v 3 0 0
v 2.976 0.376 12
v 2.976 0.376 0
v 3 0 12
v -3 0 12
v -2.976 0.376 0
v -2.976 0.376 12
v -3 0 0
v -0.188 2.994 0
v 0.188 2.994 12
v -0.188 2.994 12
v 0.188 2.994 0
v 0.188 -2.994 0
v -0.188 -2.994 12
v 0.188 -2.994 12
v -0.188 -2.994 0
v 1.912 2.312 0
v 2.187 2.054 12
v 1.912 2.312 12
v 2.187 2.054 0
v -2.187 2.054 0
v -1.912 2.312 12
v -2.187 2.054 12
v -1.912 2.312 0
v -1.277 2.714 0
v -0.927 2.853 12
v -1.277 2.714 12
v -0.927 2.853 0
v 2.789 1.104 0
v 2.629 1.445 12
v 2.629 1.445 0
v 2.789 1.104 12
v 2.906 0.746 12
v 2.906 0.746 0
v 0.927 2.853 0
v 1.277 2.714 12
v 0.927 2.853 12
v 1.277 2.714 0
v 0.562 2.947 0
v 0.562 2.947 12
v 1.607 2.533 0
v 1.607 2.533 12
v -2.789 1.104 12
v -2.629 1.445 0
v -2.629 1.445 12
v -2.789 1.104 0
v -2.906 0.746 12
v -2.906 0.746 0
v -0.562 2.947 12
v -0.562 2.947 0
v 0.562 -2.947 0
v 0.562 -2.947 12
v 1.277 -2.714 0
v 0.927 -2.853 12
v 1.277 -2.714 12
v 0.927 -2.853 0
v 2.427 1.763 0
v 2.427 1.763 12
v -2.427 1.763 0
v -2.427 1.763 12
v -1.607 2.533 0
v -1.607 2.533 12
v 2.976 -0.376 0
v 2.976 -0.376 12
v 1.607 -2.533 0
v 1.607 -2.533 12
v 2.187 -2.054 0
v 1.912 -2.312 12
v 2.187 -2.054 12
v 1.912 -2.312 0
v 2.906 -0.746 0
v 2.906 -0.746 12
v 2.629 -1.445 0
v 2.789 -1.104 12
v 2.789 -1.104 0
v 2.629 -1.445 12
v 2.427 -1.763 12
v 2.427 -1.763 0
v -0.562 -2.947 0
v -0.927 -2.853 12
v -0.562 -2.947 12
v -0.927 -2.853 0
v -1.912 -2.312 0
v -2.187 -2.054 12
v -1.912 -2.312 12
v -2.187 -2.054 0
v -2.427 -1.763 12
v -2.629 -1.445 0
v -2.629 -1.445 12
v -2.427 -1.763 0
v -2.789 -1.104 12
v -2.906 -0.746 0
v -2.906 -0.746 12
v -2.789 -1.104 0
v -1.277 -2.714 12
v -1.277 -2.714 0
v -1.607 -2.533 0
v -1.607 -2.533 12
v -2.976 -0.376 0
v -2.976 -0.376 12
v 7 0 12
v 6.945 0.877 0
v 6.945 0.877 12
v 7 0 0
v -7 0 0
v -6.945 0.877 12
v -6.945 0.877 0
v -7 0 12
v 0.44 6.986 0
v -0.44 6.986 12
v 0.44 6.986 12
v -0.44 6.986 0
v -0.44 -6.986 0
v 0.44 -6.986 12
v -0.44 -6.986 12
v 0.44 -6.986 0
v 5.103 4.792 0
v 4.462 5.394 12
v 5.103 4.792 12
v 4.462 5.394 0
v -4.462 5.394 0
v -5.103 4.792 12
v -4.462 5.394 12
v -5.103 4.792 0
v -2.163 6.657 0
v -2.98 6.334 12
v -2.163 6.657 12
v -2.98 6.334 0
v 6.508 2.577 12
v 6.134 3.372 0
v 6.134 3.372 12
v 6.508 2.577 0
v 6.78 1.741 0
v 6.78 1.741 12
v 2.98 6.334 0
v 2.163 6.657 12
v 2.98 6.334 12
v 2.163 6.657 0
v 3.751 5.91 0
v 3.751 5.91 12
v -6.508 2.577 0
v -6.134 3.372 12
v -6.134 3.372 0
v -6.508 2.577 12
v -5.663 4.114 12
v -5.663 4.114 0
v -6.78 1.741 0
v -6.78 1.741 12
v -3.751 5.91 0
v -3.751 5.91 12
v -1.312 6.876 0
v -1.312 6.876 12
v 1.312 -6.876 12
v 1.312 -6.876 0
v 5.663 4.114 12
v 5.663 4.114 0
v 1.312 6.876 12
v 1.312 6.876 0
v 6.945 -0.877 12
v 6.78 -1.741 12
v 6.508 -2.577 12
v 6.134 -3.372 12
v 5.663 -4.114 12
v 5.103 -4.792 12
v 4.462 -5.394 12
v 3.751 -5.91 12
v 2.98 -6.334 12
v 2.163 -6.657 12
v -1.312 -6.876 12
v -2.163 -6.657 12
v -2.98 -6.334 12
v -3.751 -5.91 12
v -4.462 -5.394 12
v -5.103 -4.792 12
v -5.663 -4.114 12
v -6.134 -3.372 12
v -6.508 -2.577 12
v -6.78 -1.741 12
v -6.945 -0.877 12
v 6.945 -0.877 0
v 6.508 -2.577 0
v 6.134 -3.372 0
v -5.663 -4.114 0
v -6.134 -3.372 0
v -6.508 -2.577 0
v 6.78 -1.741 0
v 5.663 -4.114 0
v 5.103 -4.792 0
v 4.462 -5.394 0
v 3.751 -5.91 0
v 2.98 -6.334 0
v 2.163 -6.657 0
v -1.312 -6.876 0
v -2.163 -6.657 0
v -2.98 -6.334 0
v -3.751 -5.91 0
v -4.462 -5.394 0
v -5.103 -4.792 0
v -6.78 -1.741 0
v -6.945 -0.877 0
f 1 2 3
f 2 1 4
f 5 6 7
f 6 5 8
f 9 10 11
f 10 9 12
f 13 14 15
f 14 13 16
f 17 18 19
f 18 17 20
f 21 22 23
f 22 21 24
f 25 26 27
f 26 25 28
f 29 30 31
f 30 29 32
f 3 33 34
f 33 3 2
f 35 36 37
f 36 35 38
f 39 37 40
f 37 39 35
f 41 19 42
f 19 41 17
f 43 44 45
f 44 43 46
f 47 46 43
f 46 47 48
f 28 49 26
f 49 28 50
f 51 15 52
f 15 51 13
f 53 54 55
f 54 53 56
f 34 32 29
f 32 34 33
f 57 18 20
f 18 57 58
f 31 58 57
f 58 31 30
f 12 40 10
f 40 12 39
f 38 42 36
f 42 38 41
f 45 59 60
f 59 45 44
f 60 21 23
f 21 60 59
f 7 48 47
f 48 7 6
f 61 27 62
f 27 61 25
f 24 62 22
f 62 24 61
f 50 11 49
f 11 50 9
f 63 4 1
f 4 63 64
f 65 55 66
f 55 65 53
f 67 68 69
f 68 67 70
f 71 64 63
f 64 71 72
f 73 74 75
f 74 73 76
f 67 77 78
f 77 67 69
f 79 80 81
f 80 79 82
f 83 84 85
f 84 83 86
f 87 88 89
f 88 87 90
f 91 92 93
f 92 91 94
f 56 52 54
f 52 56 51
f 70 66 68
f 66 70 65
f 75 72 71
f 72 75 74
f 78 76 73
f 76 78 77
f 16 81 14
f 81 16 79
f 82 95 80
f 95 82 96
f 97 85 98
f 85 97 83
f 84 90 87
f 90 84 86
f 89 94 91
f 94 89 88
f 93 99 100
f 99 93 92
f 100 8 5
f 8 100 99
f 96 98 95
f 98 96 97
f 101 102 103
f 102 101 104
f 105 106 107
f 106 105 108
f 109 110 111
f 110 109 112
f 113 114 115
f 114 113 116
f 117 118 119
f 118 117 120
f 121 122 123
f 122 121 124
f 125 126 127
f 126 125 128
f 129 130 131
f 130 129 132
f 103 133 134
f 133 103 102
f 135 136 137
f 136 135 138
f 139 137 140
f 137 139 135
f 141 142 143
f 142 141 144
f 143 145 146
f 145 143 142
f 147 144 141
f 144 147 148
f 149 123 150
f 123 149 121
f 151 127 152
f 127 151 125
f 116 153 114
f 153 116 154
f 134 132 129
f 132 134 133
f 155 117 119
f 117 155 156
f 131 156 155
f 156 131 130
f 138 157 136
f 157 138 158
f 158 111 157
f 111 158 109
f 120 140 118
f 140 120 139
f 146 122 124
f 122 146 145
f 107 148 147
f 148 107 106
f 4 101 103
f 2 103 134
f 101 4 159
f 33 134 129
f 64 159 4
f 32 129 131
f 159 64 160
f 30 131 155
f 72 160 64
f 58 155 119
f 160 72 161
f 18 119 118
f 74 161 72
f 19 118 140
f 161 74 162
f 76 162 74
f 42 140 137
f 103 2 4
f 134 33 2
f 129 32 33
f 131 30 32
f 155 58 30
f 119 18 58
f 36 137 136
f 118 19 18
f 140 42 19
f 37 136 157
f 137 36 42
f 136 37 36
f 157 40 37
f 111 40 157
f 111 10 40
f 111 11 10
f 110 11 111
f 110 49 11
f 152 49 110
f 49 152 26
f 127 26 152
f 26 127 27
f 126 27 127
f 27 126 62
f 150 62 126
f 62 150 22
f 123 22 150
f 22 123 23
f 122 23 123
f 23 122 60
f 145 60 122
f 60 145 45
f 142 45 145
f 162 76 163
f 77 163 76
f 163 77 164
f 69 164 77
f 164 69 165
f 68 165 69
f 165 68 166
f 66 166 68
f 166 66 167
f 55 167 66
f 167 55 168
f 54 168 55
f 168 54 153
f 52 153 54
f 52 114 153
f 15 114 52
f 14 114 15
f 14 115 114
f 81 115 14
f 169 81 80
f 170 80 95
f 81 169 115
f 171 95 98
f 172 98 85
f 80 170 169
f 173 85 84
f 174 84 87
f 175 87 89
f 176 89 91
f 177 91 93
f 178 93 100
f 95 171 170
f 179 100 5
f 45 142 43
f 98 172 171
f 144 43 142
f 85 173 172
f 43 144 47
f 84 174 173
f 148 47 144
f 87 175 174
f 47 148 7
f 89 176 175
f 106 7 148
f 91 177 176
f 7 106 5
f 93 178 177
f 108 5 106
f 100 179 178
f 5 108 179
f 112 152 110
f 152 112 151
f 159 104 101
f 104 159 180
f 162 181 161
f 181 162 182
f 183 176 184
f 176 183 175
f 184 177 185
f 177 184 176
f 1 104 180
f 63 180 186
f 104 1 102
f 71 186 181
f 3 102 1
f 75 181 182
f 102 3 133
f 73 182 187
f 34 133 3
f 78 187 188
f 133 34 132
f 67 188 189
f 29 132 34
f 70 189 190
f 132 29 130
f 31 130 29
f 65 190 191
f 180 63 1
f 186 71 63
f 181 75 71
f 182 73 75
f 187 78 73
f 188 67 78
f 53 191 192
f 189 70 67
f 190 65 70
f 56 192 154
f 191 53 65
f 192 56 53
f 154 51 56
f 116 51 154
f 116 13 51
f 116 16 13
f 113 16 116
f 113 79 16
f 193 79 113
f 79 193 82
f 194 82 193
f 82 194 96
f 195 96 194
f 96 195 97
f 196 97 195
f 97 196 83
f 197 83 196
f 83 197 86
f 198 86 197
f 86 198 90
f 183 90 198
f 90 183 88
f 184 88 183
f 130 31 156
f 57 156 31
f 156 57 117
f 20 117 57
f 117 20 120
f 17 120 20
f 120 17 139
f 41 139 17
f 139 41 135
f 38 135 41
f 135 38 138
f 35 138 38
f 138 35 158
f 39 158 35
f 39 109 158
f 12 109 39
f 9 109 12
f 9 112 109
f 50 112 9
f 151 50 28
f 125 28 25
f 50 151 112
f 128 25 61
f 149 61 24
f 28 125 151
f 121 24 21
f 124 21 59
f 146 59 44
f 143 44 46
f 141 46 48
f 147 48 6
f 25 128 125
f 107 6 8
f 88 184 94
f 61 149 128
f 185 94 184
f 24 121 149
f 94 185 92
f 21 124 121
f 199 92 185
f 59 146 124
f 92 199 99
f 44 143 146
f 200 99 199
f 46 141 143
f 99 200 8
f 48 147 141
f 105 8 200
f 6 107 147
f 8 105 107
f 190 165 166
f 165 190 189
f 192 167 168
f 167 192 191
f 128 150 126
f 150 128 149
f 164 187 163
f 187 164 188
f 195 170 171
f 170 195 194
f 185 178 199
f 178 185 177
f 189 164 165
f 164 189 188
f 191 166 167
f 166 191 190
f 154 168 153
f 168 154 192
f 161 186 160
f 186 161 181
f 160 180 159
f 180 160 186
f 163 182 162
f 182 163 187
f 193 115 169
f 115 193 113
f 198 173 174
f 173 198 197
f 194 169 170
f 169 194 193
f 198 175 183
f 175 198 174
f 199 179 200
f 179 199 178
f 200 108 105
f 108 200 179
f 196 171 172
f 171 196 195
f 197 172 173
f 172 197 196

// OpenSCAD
$fn = 50;


difference() {
	union() {
		translate(v = [0, 0, 0]) {
			rotate(a = [0, 0, 0]) {
				cylinder(h = 12, r = 7.0000000000);
			}
		}
	}
	union() {
		translate(v = [0.0000000000, 0.0000000000, 0]) {
			rotate(a = [0, 0, 0]) {
				translate(v = [0, 0, -50]) {
					rotate(a = [0, 0, 0]) {
						cylinder(h = 100, r = 3.0000000000);
					}
				}
			}
		}
	}
}
